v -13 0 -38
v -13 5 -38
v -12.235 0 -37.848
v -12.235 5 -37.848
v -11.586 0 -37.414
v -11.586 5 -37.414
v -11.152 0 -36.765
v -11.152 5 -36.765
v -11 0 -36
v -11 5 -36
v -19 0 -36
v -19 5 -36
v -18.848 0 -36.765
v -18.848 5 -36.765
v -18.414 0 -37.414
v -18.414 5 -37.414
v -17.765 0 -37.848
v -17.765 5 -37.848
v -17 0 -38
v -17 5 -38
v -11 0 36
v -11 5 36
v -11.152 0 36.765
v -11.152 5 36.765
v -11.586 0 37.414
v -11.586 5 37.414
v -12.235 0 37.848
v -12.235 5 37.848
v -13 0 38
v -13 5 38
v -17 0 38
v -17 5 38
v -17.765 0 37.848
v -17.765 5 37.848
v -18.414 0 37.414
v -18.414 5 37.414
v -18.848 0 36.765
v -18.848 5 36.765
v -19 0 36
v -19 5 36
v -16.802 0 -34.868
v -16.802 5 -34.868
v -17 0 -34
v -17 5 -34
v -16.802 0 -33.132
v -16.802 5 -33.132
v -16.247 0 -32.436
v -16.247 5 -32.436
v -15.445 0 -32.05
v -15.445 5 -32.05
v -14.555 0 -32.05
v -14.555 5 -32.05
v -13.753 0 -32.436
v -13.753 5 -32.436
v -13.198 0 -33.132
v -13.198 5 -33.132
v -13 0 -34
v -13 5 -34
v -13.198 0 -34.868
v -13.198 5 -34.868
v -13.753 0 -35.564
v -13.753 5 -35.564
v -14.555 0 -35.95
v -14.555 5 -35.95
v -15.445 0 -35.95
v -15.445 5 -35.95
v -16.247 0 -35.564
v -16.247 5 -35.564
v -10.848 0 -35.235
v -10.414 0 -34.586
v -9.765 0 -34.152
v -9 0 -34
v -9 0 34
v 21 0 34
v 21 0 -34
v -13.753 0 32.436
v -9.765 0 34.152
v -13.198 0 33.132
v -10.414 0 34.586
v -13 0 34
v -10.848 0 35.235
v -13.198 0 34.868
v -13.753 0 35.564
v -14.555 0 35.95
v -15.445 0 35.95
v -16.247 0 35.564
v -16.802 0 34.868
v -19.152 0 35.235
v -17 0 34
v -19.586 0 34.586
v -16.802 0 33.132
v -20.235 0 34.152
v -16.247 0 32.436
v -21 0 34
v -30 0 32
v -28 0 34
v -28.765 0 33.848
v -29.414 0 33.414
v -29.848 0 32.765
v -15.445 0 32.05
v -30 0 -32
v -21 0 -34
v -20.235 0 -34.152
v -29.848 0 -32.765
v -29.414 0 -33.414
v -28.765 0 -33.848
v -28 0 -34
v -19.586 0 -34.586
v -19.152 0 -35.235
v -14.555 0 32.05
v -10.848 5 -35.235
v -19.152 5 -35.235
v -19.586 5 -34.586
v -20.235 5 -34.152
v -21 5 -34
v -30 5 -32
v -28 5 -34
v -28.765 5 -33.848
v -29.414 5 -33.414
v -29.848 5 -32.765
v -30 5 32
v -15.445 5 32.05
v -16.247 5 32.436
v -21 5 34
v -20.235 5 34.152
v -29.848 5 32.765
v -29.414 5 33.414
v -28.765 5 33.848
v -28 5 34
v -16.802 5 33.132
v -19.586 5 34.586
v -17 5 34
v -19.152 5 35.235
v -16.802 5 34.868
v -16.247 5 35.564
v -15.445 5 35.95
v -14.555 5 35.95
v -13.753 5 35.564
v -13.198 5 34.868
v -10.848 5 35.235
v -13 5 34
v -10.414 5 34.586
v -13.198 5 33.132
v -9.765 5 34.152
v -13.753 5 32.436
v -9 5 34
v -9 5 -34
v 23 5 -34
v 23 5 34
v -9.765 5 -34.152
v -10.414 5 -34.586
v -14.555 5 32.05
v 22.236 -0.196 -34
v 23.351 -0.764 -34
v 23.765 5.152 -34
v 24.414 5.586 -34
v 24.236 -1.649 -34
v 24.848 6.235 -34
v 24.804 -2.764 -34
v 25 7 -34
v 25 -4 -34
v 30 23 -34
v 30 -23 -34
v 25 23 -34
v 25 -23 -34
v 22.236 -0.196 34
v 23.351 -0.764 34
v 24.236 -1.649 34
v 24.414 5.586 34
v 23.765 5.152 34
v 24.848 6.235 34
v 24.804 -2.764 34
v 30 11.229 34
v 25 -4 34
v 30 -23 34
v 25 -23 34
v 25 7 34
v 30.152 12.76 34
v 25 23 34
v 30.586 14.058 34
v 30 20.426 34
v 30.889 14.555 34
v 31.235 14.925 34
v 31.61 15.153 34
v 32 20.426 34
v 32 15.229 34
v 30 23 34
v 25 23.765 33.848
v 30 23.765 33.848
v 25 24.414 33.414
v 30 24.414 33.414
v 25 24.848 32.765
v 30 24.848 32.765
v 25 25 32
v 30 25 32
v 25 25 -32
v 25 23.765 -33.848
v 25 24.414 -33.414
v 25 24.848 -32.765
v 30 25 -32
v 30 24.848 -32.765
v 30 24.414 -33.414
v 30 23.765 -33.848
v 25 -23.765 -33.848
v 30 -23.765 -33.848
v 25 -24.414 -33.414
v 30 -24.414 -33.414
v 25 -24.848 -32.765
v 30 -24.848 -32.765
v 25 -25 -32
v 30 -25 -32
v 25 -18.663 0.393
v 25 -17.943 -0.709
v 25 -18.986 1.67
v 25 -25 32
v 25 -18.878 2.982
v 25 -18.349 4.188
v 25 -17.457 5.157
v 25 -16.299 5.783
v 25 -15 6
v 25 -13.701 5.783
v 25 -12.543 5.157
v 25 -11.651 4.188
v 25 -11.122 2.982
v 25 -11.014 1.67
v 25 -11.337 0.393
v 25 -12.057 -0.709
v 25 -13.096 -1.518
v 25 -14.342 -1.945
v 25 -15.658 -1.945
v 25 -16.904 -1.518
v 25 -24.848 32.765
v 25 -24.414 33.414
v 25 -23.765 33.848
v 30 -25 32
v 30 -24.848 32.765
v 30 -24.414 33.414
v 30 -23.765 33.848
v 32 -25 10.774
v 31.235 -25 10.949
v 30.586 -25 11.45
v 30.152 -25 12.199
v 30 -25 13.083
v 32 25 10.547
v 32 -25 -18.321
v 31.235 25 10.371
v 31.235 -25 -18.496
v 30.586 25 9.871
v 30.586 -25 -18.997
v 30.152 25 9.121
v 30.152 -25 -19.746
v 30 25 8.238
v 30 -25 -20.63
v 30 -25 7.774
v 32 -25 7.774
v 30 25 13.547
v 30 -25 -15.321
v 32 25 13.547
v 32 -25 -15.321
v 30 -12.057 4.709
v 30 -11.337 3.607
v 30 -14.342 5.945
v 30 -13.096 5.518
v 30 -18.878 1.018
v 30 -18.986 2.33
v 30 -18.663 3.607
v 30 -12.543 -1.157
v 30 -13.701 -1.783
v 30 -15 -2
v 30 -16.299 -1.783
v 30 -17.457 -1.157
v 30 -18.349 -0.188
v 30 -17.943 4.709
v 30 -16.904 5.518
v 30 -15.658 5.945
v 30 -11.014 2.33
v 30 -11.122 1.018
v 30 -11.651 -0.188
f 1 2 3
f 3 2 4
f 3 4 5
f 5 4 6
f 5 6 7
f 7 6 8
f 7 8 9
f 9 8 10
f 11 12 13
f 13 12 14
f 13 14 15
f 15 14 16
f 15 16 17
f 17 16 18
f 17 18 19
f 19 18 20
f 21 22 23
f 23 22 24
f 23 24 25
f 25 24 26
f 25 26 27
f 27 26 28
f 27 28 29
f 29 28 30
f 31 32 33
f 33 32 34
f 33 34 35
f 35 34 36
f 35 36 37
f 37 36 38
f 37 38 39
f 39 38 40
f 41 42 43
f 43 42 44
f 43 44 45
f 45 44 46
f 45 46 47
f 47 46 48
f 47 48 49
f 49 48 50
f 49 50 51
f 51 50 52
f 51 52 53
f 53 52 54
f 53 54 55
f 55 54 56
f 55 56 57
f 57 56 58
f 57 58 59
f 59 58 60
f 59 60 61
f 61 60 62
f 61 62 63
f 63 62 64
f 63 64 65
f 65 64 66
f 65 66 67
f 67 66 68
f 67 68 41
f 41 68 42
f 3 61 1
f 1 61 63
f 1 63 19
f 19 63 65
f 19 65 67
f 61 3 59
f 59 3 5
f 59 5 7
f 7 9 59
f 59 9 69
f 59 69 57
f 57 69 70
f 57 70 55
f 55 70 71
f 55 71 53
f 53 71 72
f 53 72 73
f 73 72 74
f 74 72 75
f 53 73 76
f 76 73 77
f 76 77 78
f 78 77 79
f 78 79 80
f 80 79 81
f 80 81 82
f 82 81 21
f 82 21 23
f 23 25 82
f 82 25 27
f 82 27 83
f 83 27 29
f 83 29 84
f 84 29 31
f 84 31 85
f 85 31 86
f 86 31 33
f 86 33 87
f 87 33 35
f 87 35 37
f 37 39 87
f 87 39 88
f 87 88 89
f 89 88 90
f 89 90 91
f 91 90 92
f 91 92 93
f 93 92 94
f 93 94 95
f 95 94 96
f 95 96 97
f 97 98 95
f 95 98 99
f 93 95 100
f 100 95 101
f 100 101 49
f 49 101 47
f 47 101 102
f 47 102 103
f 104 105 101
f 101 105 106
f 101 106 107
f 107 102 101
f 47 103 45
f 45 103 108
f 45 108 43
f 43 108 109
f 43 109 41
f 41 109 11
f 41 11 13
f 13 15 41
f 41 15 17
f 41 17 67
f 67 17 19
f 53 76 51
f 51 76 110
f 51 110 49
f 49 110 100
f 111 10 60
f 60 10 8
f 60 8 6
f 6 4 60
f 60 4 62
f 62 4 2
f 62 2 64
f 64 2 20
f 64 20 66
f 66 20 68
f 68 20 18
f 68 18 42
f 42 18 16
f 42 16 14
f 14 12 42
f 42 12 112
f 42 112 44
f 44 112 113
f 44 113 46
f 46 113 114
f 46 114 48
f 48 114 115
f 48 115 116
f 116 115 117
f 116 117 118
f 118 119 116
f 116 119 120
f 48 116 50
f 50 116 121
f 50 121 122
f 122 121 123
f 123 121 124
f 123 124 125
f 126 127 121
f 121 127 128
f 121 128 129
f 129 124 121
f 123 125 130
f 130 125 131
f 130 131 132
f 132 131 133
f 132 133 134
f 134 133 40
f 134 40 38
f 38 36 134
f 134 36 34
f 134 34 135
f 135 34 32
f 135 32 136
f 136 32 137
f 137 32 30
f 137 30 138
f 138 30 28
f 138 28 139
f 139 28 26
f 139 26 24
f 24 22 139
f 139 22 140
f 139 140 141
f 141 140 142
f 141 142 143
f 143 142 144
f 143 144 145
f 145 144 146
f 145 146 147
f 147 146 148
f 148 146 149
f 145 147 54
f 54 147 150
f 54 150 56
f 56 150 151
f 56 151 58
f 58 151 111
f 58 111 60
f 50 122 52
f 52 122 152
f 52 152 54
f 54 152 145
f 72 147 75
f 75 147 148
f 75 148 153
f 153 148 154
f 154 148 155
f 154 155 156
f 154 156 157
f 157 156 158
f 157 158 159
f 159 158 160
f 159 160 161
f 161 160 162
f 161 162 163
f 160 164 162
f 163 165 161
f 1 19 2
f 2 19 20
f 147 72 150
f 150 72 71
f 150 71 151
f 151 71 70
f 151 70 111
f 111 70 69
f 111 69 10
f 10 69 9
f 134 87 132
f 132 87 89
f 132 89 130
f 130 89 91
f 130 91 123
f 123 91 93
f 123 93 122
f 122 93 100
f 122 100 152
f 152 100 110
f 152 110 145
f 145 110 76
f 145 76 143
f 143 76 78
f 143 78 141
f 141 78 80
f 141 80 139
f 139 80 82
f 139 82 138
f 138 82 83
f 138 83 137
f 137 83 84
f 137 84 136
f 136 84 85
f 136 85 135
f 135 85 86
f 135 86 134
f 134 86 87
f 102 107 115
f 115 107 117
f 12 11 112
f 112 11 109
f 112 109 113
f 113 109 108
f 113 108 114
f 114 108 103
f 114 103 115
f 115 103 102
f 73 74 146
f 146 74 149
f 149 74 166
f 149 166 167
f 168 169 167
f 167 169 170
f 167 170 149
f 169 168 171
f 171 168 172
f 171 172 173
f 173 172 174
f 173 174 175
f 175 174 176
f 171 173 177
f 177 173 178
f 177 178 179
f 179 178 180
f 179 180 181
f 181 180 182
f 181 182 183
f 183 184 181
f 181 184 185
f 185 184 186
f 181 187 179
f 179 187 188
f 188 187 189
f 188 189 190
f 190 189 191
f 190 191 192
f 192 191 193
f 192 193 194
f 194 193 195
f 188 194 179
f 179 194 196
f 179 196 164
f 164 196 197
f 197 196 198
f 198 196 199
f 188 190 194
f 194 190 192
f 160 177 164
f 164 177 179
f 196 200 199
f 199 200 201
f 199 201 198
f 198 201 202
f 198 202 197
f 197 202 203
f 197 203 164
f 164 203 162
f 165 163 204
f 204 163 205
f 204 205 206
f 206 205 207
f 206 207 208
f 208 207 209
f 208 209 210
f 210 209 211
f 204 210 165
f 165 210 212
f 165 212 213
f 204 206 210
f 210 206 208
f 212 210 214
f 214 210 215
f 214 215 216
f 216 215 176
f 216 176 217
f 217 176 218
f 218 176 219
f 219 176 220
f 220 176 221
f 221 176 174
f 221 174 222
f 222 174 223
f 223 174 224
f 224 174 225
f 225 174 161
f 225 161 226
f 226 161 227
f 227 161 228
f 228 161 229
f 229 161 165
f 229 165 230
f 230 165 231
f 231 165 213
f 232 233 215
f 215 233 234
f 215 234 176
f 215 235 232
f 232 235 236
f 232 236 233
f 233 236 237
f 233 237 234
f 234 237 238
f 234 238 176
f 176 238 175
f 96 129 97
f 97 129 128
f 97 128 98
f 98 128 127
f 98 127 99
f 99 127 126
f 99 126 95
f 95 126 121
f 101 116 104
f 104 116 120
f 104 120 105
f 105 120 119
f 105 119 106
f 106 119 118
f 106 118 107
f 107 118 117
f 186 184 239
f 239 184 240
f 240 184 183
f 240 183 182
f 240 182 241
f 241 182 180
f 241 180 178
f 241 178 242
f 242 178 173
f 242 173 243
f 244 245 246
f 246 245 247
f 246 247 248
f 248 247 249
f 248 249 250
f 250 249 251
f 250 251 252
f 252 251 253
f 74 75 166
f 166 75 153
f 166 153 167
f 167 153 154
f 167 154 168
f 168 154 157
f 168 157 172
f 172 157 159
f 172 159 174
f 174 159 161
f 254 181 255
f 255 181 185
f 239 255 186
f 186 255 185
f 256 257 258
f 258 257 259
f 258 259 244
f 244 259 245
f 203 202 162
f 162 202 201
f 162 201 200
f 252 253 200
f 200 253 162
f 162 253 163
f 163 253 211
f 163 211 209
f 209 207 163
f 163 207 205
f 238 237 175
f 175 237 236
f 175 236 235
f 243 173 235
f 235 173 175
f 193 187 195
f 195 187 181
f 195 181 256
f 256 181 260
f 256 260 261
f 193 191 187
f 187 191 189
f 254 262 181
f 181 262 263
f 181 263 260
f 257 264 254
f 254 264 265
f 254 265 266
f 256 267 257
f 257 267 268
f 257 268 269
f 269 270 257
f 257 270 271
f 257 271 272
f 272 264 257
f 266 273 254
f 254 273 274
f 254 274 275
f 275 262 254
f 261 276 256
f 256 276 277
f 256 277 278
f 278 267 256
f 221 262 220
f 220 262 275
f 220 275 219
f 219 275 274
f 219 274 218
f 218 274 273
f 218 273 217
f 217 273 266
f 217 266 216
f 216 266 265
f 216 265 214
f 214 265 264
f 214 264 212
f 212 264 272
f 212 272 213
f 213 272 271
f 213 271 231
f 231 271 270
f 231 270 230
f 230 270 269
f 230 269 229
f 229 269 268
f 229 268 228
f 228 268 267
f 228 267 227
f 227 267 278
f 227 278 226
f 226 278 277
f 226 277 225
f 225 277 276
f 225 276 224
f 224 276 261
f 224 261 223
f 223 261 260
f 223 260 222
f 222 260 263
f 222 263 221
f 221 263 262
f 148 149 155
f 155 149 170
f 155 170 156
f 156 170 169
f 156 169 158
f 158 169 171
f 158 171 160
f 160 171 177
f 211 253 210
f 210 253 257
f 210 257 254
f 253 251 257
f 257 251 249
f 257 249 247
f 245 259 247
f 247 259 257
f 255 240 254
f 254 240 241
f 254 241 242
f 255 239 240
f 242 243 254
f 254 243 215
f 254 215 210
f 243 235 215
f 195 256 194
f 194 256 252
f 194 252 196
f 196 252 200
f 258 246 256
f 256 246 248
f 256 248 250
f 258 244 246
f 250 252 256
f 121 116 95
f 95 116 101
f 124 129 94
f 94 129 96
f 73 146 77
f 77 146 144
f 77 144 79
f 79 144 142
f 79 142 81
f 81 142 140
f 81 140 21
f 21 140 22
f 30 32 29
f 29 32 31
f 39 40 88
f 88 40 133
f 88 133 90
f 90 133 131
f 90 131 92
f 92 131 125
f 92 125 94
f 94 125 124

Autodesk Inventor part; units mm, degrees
ref_plane "YZ Plane" through (0, 0, 0) normal (1, 0, 0) x (0, 1, 0)
ref_plane "XZ Plane" through (0, 0, 0) normal (0, 1, 0) x (-1, 0, 0)
ref_plane "XY Plane" through (0, 0, 0) normal (0, 0, 1) x (1, 0, 0)
sketch "Sketch1" plane through (0, 0, 0) normal (0, 1, 0) x (-1, 0, 0)
  point P0 (0, 0)
sketch "Sketch2" plane through (0, 0, 0) normal (0, 1, 0) x (-1, 0, 0)
  line L0 (-10, 34) -> (10, 34)
  line L1 (10, 34) -> (10, -34)
  line L2 (10, -34) -> (-10, -34)
  line L3 (-10, -34) -> (-10, 34)
  line L4 (-10, 34) -> (10, -34) construction
  line L5 (10, 34) -> (-10, -34) construction
  line L6 (-10, 34) -> (-25, 34)
  line L7 (-25, 34) -> (-25, -34)
  line L8 (-25, -34) -> (-10, -34)
  line L9 (-10, -34) -> (-10, 34)
  line L10 (-10, 34) -> (30, 34)
  line L11 (30, 34) -> (30, -34)
  line L12 (30, -34) -> (-10, -34)
  line L13 (-10, -34) -> (-10, 34)
  line L14 (-10, -34) -> (-14, -34)
  line L15 (-14, -34) -> (-6, -34)
  line L16 (-6, -34) -> (-14, -34)
  line L17 (-10, 34) -> (-14, 34)
  line L18 (-14, 34) -> (-6, 34)
  line L19 (-14, 34) -> (-6, 34)
  line L20 (30, 34) -> (15, 34)
  line L21 (15, 34) -> (15, -34)
  line L22 (15, -34) -> (30, -34)
  line L23 (30, -34) -> (30, 34)
  circle A0 centre (15, -34) radius 2
  circle A1 centre (15, 34) radius 2
  line L24 (15, 34) -> (19, 34)
  line L25 (19, 34) -> (11, 34)
  line L26 (11, 34) -> (11, 38)
  line L27 (11, 38) -> (19, 38)
  line L28 (19, 38) -> (19, 34)
  line L29 (15, -34) -> (19, -34)
  line L30 (19, -34) -> (11, -34)
  line L31 (11, -34) -> (11, -38)
  line L32 (11, -38) -> (19, -38)
  line L33 (19, -38) -> (19, -34)
  point P0 (0, 0)
  point P1 (10, 34)
  point P2 (13, 34)
  point P3 (17, 34)
  point P4 (17, -34)
  point P5 (13, -34)
  point P6 (10, 34)
  dimension "d0" = 20
  dimension "d1" = 68
  dimension "d4" = 15
  dimension "d5" = 40
  dimension "d10" = 4
  dimension "d11" = 8
  dimension "d42" = 15
  dimension "d43" = 4
  dimension "d44" = 4
  dimension "d45" = 4
  dimension "d46" = 8
  dimension "d47" = 4
  dimension "d48" = 8
  dimension "d49" = 4
sketch "Sketch3" plane through (0, 0, 0) normal (0, 1, 0) x (-1, 0, 0)
  point P0 (0, 0)
extrude "Extrusion1" add sketch "Sketch2" along normal blind 5 contours L0 L1 L2 L3 | L3 L8 L7 L6 | L10 A1 L21 A0 L12 L1 | L10 L21 A1 | A0 L21 L12 | L10 A1 L21 | L10 L11 L12 A0 L21 A1 | L21 A0 L12
sketch "Sketch4" plane through (0, 0, 0) normal (0, -1, 0) x (1, 0, 0)
  point P0 (0, 0)
sketch "Sketch5" plane through (-30, 0, -34) normal (-1, 0, 0) x (0, 0, 1)
  point P0 (34, 0)
sketch "Sketch6" plane through (25, 0, 34) normal (1, 0, 0) x (0, 0, -1)
  line L0 (0, -25) -> (68, -25)
  line L1 (68, -25) -> (68, 25)
  line L2 (68, 25) -> (0, 25)
  line L3 (0, 25) -> (0, -25)
  line L4 (0, -25) -> (68, 25) construction
  line L5 (68, -25) -> (0, 25) construction
  point P0 (34, 0)
  dimension "d16" = 50
  dimension "d41" = 68
extrude "Extrusion2" add sketch "Sketch6" along normal blind 5
fillet "Face Fillet1" radius 2 1 edges at (25, 5, 0)
sketch "Sketch7" plane through (30, 0, 34) normal (1, 0, 0) x (0, 0, -1)
  line L0 (68, -25) -> (68, 0) projected
  line L1 (0, 25) -> (68, 25)
  line L2 (68, 25) -> (68, -15)
  line L3 (68, -15) -> (0, -15)
  line L4 (0, -15) -> (0, 25)
  line L5 (0, -15) -> (32, -15)
  circle A0 centre (32, -15) radius 4
  point P0 (34, 0)
  dimension "d20" = 40
  dimension "d21" = 32
  dimension "d22" = 8
extrude "Extrusion3" cut sketch "Sketch7" against normal through all contours A0 L3 | L3 A0
sketch "Sketch8" plane through (30, 0, 34) normal (1, 0, 0) x (0, 0, -1)
  line L0 (68, -25) -> (68, 0) projected
  line L1 (0, 25) -> (68, 25)
  line L2 (68, 25) -> (68, -15)
  line L3 (68, -15) -> (0, -15)
  line L4 (0, -15) -> (0, 25)
  line L5 (0, -15) -> (34, -15)
  circle A0 centre (32, -15) radius 4 projected
  line L6 (32, -15) -> (8.906, 25)
  line L7 (68, 25) -> (0, 25) projected
  line L8 (32, -15) -> (78.188, -15) construction
  line L9 (32, -15) -> (37.7735, -25)
  line L10 (0, -25) -> (68, -25) projected
  line L11 (16, 12.7128) -> (24.6603, 17.7128)
  line L12 (24.6603, 17.7128) -> (7.3397, 7.7128)
  line L13 (7.3397, 7.7128) -> (26.2265, -25)
  line L14 (26.2265, -25) -> (0, 20.4256)
  line L15 (0, 25) -> (0, -25) projected
  line L16 (24.6603, 17.7128) -> (49.3205, -25)
  line L17 (24.6603, 17.7128) -> (20.453, 25)
  line L18 (20.453, 25) -> (23.453, 25)
  line L19 (23.453, 25) -> (52.3205, -25)
  line L20 (26.2265, -25) -> (23.2265, -25)
  line L21 (23.2265, -25) -> (0, 15.2295)
  point P0 (34, 0)
  point P1 (0, 7)
  point P2 (0, 20.4256)
  point P3 (23.453, 25)
  point P4 (20.453, 25)
  dimension "d25" = 40
  dimension "d26" = 120
  dimension "d27" = 10
  dimension "d28" = 20
  dimension "d29" = 3
  dimension "d30" = 3
extrude "Extrusion4" add sketch "Sketch8" along normal blind 2 contours L10 L16 L3 L19 | L3 L16 L17 L1 L19 | L10 L21 L3 L13 | L3 L21 L4 L14 L13
fillet "Face Fillet2" radius 4 1 edges at (25, 0, 0)
fillet "Face Fillet3" radius 2 1 edges at (30, 0, -3.8868)
fillet "Face Fillet4" radius 2 1 edges at (30, -4.8853, 22.3868)
fillet "Fillet1" radius 2 6 edges at (-30, 2.5, -34) (-30, 2.5, 34) (27.5, -25, 34) (27.5, -25, -34) (27.5, 25, -34) (27.5, 25, 34)
extrude "Extrusion5" add sketch "Sketch2" along normal blind 5 contours L26 L27 L28 L10 A1
extrude "Extrusion6" add sketch "Sketch2" along normal blind 5 contours L12 A0 L33 L32 L31
extrude "Extrusion7" cut sketch "Sketch2" along normal blind 5 contours A0 L21 L12 | L21 A0 L12
extrude "Extrusion8" cut sketch "Sketch2" along normal blind 5 contours L10 L21 A1 | L10 A1 L21
fillet "Fillet2" radius 2 4 edges at (-19, 2.5, 38) (-11, 2.5, 38) (-19, 2.5, -38) (-11, 2.5, -38)
fillet "Face Fillet9" radius 2 1 edges at (-19, 2.5, 34)
fillet "Face Fillet10" radius 2 1 edges at (-11, 2.5, 34)
fillet "Face Fillet11" radius 2 1 edges at (-19, 2.5, -34)
fillet "Face Fillet12" radius 2 1 edges at (-11, 2.5, -34)
